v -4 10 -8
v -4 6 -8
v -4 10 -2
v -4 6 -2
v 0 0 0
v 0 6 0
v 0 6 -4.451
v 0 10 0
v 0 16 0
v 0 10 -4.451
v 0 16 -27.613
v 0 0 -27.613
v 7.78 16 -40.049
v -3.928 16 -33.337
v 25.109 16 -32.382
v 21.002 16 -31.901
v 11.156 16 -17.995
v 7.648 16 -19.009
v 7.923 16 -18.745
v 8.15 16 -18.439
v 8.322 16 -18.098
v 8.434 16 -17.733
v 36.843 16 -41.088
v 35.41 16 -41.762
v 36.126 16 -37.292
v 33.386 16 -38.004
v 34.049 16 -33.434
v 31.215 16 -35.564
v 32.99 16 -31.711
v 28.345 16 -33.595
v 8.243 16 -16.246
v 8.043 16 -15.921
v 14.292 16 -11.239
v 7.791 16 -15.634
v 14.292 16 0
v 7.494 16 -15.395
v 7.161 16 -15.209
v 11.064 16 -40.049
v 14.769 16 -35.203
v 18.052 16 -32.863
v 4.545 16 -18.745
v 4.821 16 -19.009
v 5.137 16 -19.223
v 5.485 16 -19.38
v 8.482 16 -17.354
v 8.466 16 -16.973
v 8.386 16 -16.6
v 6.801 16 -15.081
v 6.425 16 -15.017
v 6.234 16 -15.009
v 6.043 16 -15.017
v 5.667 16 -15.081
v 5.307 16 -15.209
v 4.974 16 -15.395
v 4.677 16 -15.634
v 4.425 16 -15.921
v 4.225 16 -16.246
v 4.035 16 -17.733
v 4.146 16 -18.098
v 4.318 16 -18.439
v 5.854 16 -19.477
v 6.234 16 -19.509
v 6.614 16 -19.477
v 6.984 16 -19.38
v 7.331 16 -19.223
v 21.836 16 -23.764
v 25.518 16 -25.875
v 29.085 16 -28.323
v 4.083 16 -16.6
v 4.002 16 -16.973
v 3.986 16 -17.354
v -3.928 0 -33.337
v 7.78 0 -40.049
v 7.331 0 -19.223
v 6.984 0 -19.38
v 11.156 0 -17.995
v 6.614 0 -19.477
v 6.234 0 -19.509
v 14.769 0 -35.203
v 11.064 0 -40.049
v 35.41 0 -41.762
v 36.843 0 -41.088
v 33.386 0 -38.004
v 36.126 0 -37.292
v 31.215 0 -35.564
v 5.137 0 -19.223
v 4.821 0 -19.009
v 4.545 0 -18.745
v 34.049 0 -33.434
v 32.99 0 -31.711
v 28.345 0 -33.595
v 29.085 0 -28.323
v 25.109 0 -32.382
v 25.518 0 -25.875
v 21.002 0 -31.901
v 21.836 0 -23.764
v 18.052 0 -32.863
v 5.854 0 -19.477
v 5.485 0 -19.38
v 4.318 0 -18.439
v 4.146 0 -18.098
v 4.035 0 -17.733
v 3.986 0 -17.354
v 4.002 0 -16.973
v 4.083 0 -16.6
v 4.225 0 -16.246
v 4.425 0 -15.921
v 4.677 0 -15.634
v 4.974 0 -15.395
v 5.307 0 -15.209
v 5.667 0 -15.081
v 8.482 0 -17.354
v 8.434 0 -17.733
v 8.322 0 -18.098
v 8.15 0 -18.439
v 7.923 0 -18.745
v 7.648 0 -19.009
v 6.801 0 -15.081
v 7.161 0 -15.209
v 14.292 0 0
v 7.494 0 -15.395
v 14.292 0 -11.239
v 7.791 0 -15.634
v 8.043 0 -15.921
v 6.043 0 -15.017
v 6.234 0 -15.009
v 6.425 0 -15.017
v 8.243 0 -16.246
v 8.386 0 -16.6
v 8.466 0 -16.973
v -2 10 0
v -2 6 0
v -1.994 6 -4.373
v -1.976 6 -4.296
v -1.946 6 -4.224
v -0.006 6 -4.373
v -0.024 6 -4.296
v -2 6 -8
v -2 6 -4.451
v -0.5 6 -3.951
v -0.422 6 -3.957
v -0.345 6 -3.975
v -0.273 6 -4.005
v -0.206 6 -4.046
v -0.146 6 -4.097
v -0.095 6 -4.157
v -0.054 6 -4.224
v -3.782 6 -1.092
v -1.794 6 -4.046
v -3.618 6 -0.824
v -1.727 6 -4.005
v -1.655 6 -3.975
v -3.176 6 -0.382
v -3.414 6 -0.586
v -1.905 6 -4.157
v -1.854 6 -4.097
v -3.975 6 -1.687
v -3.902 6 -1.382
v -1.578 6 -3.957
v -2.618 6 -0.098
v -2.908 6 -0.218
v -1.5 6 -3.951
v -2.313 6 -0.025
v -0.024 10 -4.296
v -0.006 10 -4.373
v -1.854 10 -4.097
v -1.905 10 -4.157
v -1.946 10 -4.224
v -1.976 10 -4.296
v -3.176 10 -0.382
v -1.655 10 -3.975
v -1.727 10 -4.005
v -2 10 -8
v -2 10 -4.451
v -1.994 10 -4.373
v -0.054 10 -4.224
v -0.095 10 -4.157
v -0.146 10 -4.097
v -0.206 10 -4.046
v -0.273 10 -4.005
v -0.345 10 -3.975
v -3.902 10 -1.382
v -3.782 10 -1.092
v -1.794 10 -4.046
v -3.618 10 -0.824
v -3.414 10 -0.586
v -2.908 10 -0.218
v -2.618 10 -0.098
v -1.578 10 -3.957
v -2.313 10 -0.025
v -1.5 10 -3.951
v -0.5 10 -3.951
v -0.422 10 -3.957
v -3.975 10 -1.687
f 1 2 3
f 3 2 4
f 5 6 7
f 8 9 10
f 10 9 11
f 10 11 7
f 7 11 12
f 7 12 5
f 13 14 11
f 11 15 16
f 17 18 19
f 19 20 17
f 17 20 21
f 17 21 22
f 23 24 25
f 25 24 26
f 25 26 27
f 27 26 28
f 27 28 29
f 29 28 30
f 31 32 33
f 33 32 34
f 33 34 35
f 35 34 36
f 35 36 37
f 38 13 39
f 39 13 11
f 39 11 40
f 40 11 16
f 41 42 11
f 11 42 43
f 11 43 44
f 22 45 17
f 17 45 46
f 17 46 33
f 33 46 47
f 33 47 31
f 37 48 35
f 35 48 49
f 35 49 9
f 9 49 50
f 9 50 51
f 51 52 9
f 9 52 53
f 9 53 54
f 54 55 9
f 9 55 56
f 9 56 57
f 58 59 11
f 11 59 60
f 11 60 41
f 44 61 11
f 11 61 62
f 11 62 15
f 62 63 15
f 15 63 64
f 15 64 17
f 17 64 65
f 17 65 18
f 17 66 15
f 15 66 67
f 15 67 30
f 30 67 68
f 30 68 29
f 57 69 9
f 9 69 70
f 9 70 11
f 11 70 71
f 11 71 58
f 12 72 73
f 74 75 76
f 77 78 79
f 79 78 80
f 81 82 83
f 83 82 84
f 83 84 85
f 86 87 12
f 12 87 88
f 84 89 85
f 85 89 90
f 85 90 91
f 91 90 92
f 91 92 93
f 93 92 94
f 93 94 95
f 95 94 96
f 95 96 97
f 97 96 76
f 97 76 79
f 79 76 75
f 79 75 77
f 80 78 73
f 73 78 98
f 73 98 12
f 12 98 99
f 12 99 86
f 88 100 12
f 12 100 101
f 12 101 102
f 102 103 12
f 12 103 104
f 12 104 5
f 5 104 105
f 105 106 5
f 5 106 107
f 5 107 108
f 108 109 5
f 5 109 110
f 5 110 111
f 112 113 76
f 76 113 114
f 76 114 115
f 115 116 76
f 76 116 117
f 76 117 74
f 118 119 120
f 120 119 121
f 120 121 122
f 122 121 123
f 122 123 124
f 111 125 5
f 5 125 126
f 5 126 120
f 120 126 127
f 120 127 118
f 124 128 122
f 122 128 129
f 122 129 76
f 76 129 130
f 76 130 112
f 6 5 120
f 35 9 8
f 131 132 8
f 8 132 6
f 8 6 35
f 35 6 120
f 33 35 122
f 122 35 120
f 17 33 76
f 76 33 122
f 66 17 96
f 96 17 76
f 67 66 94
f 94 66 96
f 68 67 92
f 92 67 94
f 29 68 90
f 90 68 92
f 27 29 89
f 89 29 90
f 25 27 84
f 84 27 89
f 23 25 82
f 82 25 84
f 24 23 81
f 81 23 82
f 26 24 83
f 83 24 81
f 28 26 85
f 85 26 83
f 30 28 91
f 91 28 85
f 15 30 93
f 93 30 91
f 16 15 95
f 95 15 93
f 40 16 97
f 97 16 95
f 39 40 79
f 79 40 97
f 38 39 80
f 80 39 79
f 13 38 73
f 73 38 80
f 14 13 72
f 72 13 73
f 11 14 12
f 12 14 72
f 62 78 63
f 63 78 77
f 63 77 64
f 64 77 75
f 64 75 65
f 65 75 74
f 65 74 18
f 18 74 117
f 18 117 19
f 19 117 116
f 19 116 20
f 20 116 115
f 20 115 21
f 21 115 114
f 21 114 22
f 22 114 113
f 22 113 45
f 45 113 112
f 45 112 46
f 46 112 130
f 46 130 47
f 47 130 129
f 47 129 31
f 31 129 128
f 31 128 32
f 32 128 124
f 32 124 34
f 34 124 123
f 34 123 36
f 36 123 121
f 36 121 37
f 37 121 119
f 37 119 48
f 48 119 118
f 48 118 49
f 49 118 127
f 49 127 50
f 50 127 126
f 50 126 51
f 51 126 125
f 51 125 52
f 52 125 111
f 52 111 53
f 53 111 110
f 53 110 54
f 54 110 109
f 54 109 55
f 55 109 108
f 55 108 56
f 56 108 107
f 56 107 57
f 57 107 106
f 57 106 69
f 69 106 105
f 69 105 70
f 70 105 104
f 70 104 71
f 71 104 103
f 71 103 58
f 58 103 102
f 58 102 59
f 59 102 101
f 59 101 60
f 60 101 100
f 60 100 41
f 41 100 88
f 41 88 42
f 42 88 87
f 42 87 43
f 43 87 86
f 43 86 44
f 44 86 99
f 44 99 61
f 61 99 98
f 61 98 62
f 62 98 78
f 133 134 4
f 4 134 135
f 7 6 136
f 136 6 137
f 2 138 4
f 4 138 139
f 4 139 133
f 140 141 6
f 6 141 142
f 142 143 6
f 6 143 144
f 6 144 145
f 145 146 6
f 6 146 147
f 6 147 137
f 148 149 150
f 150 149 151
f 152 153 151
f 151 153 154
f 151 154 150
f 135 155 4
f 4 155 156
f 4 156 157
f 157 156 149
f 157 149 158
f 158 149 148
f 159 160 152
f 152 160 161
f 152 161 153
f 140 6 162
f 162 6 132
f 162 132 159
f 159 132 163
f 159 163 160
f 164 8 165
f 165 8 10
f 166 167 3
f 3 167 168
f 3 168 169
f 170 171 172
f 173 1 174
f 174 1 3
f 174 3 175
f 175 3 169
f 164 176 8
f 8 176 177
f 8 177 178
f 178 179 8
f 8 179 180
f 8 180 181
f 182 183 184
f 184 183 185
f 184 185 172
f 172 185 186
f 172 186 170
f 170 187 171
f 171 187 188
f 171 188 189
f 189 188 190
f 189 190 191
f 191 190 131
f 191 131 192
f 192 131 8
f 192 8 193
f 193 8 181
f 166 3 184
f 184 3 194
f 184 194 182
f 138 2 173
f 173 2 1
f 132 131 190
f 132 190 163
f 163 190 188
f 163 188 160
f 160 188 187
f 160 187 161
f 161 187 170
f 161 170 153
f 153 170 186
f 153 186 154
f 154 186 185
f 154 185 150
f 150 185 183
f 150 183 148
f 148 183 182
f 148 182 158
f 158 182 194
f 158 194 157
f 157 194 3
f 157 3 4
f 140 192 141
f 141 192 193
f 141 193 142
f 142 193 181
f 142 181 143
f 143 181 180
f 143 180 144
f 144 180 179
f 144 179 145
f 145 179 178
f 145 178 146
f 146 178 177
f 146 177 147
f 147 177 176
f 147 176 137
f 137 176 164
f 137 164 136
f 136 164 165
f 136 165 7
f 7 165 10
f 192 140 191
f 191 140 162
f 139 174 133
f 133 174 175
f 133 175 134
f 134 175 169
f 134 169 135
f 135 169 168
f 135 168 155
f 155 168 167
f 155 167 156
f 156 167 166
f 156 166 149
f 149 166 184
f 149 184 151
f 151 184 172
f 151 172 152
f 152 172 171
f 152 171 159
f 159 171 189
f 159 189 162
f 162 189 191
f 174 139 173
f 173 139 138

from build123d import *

# Parameters (mm, degrees)
SKETCH1_R           = 2.25
BOSS_EXTRUDE1_DEPTH = 16
SKETCH4_W           = 8
SKETCH4_H           = 4
BOSS_EXTRUDE3_DEPTH = 4
CUT_EXTRUDE2_DEPTH  = 6


with BuildPart() as part:
    # Sketch1 → Boss-Extrude1 (new body)
    with BuildSketch(Plane(origin=(0, 0, 0), x_dir=(1, 0, 0), z_dir=(0, 1, 0))):
        Polygon((0, 0), (14.292346673, 0), (14.292346673, 11.238609792), (11.156143946, 17.994963368), (21.835642334, 23.763983363), (25.517809154, 25.875036511), (29.085232636, 28.322878493), (32.990082947, 31.710975059), (34.049112719, 33.434353148), (36.126472393, 37.292437563), (36.843322223, 41.087524896), (35.409622564, 41.762207089), (33.385918935, 38.003772992), (31.21539446, 35.564385481), (28.344844636, 33.594713978), (25.109272652, 32.382219348), (21.002122002, 31.901327051), (18.052032719, 32.863111645), (14.769017999, 35.202837629), (11.063605769, 40.049098317), (7.779911083, 40.049098317), (-3.927764052, 33.33687542), (0, 27.612650649), align=None)
        with Locations((6.23417855, 17.258888852)):
            Circle(SKETCH1_R, mode=Mode.SUBTRACT)
    extrude(amount=BOSS_EXTRUDE1_DEPTH)

    # Sketch4 → Boss-Extrude3 (add)
    with BuildSketch(Plane.ZY):
        with Locations((-4, 8)):
            Rectangle(SKETCH4_W, SKETCH4_H)
    extrude(amount=BOSS_EXTRUDE3_DEPTH)

    # Sketch5 → Cut-Extrude2 (cut)
    with BuildSketch(Plane(origin=(0, 10, 0), x_dir=(1, 0, 0), z_dir=(0, 1, 0))):
        with BuildLine():
            Line((-2, 8), (-2, 4.450866614))
            ThreePointArc((-2, 4.450866614), (-1.853553391, 4.097313224), (-1.5, 3.950866614))
            Line((-1.5, 3.950866614), (-0.5, 3.950866614))
            ThreePointArc((-0.5, 3.950866614), (-0.146446609, 4.097313224), (0, 4.450866614))
            Line((0, 4.450866614), (0, 8))
            Line((0, 8), (-2, 8))
        make_face()
        with BuildLine():
            Line((-4, 2), (-4, 0))
            Line((-4, 0), (-2, 0))
            ThreePointArc((-2, 0), (-3.414213562, 0.585786438), (-4, 2))
        make_face()
    extrude(amount=-CUT_EXTRUDE2_DEPTH, mode=Mode.SUBTRACT)


solid = part.part
